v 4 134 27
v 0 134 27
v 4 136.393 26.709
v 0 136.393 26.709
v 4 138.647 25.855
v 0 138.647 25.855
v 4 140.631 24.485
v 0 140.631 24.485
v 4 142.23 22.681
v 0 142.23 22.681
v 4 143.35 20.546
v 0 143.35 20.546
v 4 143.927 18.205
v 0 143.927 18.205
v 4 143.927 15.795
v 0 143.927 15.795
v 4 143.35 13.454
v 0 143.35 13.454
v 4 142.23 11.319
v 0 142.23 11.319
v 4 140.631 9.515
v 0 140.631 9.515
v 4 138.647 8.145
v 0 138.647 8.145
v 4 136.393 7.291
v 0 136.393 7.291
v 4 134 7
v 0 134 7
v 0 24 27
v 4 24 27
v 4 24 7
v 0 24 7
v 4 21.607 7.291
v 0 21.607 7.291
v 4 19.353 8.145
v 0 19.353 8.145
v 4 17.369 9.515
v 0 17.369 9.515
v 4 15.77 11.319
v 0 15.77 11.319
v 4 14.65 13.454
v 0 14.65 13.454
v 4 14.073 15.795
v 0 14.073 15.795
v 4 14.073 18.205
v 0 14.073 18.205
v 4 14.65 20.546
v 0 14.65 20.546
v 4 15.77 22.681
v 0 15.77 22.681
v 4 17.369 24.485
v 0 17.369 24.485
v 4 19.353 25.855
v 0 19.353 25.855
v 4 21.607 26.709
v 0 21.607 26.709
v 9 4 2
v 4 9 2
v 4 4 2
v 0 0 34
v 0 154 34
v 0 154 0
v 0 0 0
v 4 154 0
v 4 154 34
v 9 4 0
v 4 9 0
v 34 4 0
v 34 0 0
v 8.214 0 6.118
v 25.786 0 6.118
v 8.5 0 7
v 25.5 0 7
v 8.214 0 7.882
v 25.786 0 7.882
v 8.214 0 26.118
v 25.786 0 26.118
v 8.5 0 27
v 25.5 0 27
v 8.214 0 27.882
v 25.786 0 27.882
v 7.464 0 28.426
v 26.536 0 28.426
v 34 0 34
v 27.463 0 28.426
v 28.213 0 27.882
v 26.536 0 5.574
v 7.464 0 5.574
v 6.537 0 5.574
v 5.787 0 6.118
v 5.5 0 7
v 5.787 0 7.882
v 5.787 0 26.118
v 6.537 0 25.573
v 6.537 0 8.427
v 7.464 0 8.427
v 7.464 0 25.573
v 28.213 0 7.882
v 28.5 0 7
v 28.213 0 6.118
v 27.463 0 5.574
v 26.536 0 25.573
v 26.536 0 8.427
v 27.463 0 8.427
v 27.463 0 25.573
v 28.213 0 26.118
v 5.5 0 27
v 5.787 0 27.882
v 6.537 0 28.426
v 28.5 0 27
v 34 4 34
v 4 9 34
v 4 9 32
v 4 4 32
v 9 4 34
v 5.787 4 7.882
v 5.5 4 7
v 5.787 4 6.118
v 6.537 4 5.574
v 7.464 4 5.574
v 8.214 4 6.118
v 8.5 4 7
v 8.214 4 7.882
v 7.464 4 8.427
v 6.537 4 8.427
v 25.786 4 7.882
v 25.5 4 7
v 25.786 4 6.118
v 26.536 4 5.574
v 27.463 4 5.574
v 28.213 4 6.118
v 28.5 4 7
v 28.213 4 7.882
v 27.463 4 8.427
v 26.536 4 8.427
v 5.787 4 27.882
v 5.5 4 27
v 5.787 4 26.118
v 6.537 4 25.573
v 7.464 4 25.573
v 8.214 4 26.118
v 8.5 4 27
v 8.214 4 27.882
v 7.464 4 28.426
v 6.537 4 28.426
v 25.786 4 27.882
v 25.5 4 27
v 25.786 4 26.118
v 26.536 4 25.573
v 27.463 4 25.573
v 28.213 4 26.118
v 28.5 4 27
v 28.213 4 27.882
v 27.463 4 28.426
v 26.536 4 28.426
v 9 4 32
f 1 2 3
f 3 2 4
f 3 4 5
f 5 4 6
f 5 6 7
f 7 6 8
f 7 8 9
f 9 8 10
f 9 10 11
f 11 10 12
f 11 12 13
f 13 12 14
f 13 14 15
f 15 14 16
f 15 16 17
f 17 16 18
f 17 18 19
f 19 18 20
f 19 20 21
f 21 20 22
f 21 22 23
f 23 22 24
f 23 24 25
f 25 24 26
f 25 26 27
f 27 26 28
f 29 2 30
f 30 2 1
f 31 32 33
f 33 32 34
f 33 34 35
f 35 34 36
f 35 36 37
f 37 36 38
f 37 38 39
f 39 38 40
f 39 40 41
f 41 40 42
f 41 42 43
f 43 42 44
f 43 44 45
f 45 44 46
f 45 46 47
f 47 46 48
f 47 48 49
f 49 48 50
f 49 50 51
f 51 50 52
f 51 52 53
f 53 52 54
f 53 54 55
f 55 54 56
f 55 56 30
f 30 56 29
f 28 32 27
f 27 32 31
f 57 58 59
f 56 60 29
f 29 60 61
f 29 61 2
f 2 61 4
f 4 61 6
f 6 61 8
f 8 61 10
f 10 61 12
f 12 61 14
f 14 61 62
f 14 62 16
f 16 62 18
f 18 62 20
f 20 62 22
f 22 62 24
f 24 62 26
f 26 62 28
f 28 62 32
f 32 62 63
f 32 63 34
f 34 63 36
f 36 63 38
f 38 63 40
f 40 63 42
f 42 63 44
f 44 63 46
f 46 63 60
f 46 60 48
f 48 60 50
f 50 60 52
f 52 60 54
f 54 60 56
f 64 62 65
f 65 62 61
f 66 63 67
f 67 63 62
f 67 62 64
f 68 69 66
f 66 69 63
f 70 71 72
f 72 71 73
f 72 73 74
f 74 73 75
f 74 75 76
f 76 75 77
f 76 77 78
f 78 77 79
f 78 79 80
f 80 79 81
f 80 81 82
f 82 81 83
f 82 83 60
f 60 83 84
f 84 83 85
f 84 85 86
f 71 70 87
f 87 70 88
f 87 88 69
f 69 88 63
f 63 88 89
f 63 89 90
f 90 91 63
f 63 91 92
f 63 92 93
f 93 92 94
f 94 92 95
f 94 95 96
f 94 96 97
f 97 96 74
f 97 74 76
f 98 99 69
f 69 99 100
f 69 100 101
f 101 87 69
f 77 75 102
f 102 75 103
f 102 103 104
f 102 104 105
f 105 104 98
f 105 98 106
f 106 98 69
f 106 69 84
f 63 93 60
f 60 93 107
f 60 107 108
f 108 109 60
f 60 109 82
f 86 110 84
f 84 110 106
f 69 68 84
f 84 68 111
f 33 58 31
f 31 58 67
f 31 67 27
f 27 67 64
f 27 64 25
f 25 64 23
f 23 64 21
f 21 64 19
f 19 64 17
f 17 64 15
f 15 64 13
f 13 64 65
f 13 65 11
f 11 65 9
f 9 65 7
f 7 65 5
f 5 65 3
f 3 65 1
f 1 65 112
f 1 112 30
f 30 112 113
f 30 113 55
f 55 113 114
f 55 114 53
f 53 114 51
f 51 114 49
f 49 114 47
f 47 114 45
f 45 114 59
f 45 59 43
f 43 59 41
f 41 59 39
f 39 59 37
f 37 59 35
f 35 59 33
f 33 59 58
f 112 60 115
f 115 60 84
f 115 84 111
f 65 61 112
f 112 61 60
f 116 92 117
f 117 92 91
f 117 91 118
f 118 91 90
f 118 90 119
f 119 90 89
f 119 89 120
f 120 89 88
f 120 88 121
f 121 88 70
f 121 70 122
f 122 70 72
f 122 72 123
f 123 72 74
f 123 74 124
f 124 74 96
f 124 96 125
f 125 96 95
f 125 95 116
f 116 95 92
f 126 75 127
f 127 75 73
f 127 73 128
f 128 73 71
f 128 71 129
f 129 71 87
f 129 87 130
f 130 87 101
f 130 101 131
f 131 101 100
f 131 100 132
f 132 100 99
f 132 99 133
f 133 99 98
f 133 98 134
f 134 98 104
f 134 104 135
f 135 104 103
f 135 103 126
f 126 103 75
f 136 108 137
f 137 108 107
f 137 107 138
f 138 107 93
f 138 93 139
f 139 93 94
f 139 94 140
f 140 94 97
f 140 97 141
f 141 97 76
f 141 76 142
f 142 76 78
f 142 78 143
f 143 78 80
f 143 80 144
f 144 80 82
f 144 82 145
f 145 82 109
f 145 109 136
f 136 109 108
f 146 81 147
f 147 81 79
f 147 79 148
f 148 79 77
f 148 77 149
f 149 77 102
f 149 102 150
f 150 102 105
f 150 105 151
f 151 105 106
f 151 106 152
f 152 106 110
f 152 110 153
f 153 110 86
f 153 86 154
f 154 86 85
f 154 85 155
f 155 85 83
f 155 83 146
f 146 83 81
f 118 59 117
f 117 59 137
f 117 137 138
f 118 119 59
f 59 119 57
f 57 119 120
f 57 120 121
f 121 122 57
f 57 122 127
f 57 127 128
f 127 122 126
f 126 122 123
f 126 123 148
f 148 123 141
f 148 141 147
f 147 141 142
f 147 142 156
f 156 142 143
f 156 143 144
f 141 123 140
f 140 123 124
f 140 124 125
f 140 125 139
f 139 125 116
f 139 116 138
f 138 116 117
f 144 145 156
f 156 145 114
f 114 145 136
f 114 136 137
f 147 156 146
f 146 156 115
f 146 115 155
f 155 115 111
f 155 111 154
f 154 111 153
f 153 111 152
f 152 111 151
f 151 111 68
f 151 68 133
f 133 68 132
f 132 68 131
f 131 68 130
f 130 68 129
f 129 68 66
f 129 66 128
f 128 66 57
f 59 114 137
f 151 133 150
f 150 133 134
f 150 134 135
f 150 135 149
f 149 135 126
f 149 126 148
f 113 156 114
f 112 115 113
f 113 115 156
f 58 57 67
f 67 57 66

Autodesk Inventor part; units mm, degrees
sketch "Sketch1" plane through (0, 0, 0) normal (0, 0, 1) x (1, 0, 0)
  line L0 (0, 0) -> (34, 0)
  line L1 (34, 0) -> (34, 4)
  line L2 (34, 4) -> (4, 4)
  line L3 (4, 4) -> (4, 154)
  line L4 (4, 154) -> (0, 154)
  line L5 (0, 154) -> (0, 0)
  dimension "d2" = 34
  dimension "d3" = 4
  dimension "d4" = 30
  dimension "d5" = 150
  dimension "d6" = 4
extrude "Extrusion1" add sketch "Sketch1" along normal blind 34
sketch "Sketch3" plane through (4, 4, 0) normal (1, 0, 0) x (0, 0, -1)
  line L0 (0, 0) -> (-34, 0) projected
  line L1 (0, 150) -> (-34, 150) projected
  arc A0 (-27, 20) -> (-7, 20) centre (-17, 20) ccw
  arc A1 (-7, 130) -> (-27, 130) centre (-17, 130) ccw
  line L2 (-27, 20) -> (-27, 130)
  line L3 (-7, 130) -> (-7, 20)
  point P0 (0, -4)
extrude "Extrusion3" cut sketch "Sketch3" against normal blind 20
sketch "Sketch4" plane through (0, 0, 0) normal (0, -1, 0) x (1, 0, 0)
  line L0 (0, 0) -> (34, 0) projected
  line L1 (34, 0) -> (34, 34) projected
  line L2 (0, 34) -> (34, 34) projected
  line L3 (0, 0) -> (0, 34) projected
  line L4 (4, 34) -> (0, 34) projected
  line L5 (34, 0) -> (34, 34) projected
  circle A0 centre (26.9999, 26.9999) radius 1.5
  circle A1 centre (26.9999, 7.0001) radius 1.5
  circle A2 centre (7.0001, 26.9999) radius 1.5
  circle A3 centre (7.0001, 7.0001) radius 1.5
  dimension "d28" = 3
  dimension "d29" = 3
  dimension "d30" = 3
  dimension "d31" = 3
extrude "Extrusion4" cut sketch "Sketch4" against normal blind 10 contours A0 | A1 | A2 | A3
sketch "Sketch5" plane through (4, 4, 0) normal (0, 1, 0) x (1, 0, 0)
  line L0 (0, 0) -> (0, -34) projected
  line L1 (36.8, 0) -> (-10.8, 0) projected
  line L2 (30, 0) -> (0, 0) projected
  line L3 (0, 0) -> (0, -2)
  line L4 (0, 0) -> (0, -34) projected
  line L5 (0, -2) -> (5, -2)
  line L6 (5, -2) -> (5, 0)
  line L7 (30, -34) -> (0, -34) projected
  line L8 (0, -34) -> (0, -32)
  line L9 (0, -32) -> (5, -32)
  line L10 (5, -32) -> (5, -34)
  line L11 (5, -34) -> (0, -34)
  point P0 (-4, 0)
  dimension "d34" = 2
  dimension "d35" = 5
  dimension "d36" = 2
  dimension "d37" = 5
extrude "Extrusion5" add sketch "Sketch5" along normal blind 5
sketch "Sketch6" plane through (0, 0, 0) normal (0, 0, -1) x (-1, 0, 0)
  line L0 (-34, 0) -> (-34, 4) projected
  line L1 (0, 0) -> (-34, 0) projected
  line L2 (0, 154) -> (0, 0) projected
  line L3 (-4, 154) -> (0, 154) projected
  line L4 (-4, 9) -> (-4, 154) projected
  line L5 (-9, 9) -> (-4, 9) projected
  line L6 (-9, 4) -> (-9, 9) projected
  line L7 (-34, 4) -> (-9, 4) projected
  line L8 (-4, 9) -> (-4, 4) projected
  line L9 (-9, 4) -> (-4, 9)
  line L10 (-4, 9) -> (-9, 9) projected
  line L11 (-4, 9) -> (-9, 9)
  line L12 (-9, 4) -> (-9, 9) projected
  line L13 (-9, 9) -> (-9, 4)
extrude "Extrusion6" cut sketch "Sketch6" against normal blind 4000 contours L6 L5 L9
properties part number "IDOM_infrared_fixture2"
